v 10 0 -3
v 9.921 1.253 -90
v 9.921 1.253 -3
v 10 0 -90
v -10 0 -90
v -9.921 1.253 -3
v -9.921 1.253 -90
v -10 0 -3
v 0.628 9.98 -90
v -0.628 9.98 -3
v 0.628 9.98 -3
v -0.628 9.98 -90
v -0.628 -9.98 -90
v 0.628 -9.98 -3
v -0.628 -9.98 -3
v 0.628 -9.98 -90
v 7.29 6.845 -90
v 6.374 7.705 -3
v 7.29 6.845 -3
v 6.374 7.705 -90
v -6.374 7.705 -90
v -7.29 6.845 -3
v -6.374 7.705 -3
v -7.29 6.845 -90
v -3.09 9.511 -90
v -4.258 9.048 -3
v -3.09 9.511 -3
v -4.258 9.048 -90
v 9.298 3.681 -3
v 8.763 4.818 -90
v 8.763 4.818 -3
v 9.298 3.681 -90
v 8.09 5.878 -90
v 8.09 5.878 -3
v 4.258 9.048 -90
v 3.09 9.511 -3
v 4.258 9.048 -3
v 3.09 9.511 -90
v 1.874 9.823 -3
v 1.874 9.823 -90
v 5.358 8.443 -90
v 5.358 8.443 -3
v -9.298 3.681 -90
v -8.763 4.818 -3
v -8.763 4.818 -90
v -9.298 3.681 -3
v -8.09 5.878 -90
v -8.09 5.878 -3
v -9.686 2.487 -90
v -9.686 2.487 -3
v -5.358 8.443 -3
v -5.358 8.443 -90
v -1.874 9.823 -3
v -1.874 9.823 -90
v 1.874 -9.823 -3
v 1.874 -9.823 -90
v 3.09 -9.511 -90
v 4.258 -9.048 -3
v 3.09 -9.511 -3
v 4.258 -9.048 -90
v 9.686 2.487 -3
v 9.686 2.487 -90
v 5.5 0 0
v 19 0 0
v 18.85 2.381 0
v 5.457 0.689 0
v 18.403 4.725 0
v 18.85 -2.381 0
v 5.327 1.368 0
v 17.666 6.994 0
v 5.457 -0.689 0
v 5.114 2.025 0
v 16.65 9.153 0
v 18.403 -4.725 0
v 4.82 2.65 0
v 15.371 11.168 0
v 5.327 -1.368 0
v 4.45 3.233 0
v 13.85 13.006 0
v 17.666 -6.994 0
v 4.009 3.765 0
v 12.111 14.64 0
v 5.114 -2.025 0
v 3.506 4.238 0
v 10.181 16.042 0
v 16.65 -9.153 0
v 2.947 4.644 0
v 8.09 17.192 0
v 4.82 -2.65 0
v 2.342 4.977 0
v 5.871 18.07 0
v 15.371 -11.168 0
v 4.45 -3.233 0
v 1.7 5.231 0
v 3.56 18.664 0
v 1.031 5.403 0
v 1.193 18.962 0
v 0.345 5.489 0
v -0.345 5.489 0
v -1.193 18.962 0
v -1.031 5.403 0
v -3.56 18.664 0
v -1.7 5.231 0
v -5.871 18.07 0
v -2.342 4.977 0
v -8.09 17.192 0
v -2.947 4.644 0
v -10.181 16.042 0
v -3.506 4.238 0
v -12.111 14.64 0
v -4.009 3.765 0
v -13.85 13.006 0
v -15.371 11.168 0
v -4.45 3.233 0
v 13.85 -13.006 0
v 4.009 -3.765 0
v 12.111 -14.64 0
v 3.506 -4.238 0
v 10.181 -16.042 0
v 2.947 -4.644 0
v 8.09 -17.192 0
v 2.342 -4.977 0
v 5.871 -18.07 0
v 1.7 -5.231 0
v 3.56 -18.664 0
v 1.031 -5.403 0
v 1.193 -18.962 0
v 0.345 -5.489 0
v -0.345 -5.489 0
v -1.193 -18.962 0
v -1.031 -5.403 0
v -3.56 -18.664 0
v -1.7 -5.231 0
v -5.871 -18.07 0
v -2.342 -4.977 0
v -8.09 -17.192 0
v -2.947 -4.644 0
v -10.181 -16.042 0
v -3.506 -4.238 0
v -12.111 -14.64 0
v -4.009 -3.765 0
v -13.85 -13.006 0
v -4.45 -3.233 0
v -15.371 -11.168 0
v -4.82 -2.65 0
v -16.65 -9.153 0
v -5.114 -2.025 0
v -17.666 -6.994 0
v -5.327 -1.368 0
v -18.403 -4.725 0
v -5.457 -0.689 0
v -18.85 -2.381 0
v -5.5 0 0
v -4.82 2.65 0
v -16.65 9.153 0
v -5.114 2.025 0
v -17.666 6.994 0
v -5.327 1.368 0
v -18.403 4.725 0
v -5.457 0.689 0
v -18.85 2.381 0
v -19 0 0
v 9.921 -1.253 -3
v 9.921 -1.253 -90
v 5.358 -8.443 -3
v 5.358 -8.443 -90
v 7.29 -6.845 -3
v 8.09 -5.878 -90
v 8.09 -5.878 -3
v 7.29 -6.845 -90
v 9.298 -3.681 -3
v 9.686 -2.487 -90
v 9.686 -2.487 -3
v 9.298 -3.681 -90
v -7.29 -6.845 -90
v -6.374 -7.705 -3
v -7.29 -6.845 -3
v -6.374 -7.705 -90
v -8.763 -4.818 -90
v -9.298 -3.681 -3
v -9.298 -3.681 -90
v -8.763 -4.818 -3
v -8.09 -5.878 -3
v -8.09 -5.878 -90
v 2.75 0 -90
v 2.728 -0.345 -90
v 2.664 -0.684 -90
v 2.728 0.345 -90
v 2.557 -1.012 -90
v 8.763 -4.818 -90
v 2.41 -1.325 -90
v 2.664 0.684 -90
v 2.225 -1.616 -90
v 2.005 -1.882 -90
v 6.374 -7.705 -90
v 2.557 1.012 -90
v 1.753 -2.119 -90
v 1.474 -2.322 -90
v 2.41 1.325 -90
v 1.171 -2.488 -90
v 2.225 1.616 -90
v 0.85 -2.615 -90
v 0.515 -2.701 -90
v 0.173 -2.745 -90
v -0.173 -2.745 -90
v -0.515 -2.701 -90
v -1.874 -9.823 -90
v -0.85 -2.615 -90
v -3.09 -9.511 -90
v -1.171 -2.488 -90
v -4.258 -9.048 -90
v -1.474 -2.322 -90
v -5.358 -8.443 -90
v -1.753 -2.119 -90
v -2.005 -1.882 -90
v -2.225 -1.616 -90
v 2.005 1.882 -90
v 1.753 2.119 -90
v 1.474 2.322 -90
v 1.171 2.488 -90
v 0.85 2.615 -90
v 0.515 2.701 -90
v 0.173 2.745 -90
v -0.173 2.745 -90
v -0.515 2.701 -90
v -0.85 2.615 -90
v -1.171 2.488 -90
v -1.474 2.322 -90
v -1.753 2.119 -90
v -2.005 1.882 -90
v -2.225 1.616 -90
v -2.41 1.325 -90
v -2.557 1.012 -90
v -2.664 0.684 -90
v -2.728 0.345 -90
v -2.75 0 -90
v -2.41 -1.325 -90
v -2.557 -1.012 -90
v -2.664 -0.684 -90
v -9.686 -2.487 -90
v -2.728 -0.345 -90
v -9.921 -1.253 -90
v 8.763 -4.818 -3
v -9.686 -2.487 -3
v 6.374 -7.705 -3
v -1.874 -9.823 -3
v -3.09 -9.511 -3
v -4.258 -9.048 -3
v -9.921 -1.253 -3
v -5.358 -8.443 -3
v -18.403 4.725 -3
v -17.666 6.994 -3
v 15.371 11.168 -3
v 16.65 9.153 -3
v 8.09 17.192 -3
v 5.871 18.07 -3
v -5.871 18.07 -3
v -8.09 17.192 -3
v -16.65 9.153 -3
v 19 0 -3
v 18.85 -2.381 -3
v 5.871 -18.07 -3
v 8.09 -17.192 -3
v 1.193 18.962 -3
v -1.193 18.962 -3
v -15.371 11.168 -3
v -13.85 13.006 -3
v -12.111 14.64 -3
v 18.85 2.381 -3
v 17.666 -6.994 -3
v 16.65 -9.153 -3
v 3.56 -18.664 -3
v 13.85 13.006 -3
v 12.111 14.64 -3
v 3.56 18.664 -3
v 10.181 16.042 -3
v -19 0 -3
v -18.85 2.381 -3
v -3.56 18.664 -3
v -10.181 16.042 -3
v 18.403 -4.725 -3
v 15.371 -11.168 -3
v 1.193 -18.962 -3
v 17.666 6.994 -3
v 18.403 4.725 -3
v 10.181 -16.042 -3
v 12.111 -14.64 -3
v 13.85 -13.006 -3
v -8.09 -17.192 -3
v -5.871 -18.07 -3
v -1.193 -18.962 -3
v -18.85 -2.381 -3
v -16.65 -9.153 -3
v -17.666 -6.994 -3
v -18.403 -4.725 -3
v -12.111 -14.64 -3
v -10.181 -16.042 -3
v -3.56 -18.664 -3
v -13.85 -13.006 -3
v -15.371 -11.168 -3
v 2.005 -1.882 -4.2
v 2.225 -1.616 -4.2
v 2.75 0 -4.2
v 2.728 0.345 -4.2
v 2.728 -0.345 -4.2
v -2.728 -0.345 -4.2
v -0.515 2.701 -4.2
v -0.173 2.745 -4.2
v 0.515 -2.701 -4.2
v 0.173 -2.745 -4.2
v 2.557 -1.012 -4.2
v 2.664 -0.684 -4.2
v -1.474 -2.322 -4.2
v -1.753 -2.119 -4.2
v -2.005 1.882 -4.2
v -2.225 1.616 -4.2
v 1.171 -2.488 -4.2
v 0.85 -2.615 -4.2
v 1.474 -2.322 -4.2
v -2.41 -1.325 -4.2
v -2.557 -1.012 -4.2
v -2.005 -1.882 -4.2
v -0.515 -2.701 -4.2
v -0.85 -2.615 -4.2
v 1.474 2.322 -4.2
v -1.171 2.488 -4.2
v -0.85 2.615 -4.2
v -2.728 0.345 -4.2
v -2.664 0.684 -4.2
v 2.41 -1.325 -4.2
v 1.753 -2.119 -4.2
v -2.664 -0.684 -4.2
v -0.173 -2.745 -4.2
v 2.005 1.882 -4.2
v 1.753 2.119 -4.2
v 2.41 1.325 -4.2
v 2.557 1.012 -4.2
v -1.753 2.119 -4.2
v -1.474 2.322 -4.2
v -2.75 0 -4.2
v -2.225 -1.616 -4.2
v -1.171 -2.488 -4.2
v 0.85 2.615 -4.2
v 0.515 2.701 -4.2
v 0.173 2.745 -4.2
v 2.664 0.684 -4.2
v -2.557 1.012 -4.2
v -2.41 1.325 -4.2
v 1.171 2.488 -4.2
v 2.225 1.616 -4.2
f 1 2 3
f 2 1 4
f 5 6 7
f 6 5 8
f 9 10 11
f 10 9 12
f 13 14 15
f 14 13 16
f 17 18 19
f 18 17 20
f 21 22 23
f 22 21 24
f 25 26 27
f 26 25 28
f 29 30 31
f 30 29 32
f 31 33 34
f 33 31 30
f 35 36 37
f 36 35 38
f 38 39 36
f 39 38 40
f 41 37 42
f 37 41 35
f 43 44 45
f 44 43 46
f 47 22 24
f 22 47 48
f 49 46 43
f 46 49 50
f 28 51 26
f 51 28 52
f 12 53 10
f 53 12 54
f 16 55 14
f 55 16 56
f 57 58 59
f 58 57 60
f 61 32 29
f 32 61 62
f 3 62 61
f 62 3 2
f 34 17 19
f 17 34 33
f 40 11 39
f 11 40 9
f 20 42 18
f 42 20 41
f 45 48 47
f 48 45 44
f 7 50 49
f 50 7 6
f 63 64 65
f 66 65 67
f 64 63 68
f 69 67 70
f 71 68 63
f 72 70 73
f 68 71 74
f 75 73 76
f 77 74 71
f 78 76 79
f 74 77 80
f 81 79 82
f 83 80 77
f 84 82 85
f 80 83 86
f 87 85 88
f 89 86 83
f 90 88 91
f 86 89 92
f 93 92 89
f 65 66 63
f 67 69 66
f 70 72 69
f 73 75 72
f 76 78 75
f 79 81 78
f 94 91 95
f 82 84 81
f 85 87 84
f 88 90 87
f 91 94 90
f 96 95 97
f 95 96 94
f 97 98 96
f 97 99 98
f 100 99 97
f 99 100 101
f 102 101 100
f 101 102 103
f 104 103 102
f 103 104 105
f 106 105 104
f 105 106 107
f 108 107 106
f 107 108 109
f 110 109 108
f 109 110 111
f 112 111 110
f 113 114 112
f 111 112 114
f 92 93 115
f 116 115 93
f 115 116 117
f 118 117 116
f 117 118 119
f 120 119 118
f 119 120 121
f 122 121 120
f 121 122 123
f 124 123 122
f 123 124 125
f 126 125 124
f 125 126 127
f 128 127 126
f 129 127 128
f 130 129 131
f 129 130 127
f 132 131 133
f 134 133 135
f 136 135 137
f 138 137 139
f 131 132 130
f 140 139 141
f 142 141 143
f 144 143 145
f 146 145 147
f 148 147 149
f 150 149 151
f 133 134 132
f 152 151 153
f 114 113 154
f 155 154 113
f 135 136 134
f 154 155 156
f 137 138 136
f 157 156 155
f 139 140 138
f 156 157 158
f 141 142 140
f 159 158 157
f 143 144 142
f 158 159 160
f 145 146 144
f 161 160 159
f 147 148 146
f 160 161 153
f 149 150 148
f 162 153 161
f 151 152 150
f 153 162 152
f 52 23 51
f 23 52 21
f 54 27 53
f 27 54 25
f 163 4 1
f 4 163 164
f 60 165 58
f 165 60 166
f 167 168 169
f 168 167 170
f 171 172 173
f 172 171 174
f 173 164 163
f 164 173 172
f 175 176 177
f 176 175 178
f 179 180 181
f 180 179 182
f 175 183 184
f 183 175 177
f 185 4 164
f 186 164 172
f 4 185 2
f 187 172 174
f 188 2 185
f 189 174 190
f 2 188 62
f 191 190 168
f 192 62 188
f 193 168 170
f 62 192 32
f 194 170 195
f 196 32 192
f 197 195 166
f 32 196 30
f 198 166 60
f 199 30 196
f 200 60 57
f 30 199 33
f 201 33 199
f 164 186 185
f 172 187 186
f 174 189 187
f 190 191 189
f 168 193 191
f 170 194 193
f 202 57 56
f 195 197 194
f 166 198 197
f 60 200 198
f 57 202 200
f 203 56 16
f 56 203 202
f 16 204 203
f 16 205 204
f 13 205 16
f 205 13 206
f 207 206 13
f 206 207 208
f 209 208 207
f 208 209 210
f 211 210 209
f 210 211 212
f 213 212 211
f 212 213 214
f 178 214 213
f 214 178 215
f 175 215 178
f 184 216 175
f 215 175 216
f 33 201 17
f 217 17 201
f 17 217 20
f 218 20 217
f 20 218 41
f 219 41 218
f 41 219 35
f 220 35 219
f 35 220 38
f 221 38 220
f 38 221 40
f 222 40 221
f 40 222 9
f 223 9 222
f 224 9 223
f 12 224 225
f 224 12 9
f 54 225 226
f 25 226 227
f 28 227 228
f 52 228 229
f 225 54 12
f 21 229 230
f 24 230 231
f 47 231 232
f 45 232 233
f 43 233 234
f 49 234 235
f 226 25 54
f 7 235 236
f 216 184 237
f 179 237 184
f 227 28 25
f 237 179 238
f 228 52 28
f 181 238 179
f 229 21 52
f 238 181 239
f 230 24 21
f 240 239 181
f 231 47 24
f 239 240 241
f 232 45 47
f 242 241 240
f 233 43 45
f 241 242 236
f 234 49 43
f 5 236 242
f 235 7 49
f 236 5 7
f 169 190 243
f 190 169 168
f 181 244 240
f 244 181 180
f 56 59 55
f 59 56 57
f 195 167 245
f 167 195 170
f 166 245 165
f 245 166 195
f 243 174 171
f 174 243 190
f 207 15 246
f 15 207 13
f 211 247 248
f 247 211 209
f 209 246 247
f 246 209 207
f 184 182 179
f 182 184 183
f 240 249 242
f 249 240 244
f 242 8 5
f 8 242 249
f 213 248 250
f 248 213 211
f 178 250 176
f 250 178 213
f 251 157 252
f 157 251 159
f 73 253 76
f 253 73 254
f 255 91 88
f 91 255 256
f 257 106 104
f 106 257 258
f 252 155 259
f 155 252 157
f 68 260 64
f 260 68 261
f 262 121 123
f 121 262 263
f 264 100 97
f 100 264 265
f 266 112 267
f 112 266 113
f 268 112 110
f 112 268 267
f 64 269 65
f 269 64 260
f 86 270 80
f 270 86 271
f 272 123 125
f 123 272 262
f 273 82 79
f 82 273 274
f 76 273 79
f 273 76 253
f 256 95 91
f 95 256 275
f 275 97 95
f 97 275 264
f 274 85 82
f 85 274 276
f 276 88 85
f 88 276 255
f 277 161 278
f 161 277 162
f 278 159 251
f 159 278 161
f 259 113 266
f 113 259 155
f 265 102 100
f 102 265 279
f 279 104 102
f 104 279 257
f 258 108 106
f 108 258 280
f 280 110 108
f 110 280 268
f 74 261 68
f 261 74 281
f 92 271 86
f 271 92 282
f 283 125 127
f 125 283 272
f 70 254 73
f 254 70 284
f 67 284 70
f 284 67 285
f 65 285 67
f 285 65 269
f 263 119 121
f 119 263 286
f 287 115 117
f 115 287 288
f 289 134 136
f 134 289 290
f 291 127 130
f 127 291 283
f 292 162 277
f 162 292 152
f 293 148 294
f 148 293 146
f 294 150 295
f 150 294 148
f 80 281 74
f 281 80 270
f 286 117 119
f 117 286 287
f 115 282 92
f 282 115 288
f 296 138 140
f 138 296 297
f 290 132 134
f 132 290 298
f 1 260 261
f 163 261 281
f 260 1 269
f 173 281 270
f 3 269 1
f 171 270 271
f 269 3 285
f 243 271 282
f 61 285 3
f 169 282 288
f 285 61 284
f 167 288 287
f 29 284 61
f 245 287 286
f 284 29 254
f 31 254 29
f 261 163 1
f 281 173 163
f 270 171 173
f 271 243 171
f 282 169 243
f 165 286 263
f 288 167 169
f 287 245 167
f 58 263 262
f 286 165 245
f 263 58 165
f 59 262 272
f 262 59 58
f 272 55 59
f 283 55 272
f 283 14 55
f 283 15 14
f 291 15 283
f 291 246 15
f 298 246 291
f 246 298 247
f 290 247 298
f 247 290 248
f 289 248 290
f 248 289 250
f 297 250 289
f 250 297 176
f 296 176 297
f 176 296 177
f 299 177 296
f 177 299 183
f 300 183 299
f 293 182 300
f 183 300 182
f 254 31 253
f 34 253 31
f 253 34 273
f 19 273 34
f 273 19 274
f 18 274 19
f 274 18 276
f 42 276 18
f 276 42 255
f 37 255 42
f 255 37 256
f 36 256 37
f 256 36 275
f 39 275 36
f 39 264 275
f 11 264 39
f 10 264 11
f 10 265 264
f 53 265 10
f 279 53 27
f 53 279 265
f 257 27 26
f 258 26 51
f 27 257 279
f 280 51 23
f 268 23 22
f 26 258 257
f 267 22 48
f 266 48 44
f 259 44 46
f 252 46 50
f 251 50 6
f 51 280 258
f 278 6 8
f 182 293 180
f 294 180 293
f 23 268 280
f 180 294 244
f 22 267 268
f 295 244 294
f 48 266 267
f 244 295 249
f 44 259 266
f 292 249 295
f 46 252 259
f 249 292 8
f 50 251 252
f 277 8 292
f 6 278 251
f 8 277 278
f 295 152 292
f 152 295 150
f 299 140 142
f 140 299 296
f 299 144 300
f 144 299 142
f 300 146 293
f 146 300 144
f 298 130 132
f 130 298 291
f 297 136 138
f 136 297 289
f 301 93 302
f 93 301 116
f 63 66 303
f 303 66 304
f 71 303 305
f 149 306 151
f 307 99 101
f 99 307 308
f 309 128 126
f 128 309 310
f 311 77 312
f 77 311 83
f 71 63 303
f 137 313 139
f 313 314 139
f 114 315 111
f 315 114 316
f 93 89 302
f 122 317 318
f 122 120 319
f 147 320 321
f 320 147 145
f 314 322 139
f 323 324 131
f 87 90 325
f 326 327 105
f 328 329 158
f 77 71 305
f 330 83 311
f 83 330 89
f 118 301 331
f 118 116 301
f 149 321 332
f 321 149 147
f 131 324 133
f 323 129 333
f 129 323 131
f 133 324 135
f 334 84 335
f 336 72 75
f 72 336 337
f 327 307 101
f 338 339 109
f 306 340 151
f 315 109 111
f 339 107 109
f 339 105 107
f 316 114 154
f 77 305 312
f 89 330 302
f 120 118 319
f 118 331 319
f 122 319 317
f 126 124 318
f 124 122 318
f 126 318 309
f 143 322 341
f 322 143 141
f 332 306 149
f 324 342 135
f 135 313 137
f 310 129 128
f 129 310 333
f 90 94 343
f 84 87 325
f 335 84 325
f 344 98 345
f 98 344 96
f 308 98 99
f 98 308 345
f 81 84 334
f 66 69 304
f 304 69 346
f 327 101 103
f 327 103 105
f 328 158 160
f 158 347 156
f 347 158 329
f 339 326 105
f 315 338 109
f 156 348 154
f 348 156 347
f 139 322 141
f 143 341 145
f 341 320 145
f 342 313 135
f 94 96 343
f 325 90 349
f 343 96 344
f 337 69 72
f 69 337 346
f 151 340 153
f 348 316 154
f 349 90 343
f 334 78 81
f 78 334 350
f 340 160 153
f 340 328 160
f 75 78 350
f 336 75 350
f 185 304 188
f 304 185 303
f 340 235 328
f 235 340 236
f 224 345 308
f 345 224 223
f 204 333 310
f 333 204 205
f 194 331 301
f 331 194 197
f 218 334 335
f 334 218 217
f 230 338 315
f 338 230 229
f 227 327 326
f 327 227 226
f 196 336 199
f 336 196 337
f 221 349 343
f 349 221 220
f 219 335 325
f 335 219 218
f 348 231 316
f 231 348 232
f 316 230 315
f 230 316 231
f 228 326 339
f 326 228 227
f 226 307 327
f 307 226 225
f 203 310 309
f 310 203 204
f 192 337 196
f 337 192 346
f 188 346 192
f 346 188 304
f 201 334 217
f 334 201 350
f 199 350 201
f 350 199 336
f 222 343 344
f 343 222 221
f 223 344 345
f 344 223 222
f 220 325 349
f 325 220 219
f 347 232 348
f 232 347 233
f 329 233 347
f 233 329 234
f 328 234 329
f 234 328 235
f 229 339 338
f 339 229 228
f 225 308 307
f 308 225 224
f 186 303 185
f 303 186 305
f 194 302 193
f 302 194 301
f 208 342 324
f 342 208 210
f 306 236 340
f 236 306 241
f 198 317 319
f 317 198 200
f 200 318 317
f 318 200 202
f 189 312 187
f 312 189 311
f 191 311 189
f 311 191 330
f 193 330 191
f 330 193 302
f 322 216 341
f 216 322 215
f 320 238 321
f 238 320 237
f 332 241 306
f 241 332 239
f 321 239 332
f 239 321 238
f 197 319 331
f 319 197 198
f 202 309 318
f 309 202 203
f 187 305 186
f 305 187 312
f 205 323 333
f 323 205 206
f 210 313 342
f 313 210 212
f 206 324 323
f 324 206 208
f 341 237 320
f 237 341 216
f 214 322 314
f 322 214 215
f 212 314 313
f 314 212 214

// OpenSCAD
$fn = 50;


difference() {
	union() {
		translate(v = [0, 0, -90.0000000000]) {
			cylinder(h = 90, r = 10.0000000000);
		}
		translate(v = [0, 0, -3.0000000000]) {
			cylinder(h = 3, r = 19.0000000000);
		}
	}
	union() {
		translate(v = [0, 0, 0]) {
			rotate(a = [0, 0, 0]) {
				difference() {
					union() {
						#translate(v = [0, 0, -90.0000000000]) {
							cylinder(h = 90, r = 2.2500000000);
						}
						#translate(v = [0, 0, -4.2000000000]) {
							cylinder(h = 4.2000000000, r = 10.0000000000, r1 = 2.7500000000, r2 = 5.5000000000);
						}
						#translate(v = [0, 0, -90.0000000000]) {
							cylinder(h = 90, r = 2.7500000000);
						}
						#translate(v = [0, 0, -90.0000000000]) {
							cylinder(h = 90, r = 2.2500000000);
						}
					}
					union();
				}
			}
		}
	}
}
